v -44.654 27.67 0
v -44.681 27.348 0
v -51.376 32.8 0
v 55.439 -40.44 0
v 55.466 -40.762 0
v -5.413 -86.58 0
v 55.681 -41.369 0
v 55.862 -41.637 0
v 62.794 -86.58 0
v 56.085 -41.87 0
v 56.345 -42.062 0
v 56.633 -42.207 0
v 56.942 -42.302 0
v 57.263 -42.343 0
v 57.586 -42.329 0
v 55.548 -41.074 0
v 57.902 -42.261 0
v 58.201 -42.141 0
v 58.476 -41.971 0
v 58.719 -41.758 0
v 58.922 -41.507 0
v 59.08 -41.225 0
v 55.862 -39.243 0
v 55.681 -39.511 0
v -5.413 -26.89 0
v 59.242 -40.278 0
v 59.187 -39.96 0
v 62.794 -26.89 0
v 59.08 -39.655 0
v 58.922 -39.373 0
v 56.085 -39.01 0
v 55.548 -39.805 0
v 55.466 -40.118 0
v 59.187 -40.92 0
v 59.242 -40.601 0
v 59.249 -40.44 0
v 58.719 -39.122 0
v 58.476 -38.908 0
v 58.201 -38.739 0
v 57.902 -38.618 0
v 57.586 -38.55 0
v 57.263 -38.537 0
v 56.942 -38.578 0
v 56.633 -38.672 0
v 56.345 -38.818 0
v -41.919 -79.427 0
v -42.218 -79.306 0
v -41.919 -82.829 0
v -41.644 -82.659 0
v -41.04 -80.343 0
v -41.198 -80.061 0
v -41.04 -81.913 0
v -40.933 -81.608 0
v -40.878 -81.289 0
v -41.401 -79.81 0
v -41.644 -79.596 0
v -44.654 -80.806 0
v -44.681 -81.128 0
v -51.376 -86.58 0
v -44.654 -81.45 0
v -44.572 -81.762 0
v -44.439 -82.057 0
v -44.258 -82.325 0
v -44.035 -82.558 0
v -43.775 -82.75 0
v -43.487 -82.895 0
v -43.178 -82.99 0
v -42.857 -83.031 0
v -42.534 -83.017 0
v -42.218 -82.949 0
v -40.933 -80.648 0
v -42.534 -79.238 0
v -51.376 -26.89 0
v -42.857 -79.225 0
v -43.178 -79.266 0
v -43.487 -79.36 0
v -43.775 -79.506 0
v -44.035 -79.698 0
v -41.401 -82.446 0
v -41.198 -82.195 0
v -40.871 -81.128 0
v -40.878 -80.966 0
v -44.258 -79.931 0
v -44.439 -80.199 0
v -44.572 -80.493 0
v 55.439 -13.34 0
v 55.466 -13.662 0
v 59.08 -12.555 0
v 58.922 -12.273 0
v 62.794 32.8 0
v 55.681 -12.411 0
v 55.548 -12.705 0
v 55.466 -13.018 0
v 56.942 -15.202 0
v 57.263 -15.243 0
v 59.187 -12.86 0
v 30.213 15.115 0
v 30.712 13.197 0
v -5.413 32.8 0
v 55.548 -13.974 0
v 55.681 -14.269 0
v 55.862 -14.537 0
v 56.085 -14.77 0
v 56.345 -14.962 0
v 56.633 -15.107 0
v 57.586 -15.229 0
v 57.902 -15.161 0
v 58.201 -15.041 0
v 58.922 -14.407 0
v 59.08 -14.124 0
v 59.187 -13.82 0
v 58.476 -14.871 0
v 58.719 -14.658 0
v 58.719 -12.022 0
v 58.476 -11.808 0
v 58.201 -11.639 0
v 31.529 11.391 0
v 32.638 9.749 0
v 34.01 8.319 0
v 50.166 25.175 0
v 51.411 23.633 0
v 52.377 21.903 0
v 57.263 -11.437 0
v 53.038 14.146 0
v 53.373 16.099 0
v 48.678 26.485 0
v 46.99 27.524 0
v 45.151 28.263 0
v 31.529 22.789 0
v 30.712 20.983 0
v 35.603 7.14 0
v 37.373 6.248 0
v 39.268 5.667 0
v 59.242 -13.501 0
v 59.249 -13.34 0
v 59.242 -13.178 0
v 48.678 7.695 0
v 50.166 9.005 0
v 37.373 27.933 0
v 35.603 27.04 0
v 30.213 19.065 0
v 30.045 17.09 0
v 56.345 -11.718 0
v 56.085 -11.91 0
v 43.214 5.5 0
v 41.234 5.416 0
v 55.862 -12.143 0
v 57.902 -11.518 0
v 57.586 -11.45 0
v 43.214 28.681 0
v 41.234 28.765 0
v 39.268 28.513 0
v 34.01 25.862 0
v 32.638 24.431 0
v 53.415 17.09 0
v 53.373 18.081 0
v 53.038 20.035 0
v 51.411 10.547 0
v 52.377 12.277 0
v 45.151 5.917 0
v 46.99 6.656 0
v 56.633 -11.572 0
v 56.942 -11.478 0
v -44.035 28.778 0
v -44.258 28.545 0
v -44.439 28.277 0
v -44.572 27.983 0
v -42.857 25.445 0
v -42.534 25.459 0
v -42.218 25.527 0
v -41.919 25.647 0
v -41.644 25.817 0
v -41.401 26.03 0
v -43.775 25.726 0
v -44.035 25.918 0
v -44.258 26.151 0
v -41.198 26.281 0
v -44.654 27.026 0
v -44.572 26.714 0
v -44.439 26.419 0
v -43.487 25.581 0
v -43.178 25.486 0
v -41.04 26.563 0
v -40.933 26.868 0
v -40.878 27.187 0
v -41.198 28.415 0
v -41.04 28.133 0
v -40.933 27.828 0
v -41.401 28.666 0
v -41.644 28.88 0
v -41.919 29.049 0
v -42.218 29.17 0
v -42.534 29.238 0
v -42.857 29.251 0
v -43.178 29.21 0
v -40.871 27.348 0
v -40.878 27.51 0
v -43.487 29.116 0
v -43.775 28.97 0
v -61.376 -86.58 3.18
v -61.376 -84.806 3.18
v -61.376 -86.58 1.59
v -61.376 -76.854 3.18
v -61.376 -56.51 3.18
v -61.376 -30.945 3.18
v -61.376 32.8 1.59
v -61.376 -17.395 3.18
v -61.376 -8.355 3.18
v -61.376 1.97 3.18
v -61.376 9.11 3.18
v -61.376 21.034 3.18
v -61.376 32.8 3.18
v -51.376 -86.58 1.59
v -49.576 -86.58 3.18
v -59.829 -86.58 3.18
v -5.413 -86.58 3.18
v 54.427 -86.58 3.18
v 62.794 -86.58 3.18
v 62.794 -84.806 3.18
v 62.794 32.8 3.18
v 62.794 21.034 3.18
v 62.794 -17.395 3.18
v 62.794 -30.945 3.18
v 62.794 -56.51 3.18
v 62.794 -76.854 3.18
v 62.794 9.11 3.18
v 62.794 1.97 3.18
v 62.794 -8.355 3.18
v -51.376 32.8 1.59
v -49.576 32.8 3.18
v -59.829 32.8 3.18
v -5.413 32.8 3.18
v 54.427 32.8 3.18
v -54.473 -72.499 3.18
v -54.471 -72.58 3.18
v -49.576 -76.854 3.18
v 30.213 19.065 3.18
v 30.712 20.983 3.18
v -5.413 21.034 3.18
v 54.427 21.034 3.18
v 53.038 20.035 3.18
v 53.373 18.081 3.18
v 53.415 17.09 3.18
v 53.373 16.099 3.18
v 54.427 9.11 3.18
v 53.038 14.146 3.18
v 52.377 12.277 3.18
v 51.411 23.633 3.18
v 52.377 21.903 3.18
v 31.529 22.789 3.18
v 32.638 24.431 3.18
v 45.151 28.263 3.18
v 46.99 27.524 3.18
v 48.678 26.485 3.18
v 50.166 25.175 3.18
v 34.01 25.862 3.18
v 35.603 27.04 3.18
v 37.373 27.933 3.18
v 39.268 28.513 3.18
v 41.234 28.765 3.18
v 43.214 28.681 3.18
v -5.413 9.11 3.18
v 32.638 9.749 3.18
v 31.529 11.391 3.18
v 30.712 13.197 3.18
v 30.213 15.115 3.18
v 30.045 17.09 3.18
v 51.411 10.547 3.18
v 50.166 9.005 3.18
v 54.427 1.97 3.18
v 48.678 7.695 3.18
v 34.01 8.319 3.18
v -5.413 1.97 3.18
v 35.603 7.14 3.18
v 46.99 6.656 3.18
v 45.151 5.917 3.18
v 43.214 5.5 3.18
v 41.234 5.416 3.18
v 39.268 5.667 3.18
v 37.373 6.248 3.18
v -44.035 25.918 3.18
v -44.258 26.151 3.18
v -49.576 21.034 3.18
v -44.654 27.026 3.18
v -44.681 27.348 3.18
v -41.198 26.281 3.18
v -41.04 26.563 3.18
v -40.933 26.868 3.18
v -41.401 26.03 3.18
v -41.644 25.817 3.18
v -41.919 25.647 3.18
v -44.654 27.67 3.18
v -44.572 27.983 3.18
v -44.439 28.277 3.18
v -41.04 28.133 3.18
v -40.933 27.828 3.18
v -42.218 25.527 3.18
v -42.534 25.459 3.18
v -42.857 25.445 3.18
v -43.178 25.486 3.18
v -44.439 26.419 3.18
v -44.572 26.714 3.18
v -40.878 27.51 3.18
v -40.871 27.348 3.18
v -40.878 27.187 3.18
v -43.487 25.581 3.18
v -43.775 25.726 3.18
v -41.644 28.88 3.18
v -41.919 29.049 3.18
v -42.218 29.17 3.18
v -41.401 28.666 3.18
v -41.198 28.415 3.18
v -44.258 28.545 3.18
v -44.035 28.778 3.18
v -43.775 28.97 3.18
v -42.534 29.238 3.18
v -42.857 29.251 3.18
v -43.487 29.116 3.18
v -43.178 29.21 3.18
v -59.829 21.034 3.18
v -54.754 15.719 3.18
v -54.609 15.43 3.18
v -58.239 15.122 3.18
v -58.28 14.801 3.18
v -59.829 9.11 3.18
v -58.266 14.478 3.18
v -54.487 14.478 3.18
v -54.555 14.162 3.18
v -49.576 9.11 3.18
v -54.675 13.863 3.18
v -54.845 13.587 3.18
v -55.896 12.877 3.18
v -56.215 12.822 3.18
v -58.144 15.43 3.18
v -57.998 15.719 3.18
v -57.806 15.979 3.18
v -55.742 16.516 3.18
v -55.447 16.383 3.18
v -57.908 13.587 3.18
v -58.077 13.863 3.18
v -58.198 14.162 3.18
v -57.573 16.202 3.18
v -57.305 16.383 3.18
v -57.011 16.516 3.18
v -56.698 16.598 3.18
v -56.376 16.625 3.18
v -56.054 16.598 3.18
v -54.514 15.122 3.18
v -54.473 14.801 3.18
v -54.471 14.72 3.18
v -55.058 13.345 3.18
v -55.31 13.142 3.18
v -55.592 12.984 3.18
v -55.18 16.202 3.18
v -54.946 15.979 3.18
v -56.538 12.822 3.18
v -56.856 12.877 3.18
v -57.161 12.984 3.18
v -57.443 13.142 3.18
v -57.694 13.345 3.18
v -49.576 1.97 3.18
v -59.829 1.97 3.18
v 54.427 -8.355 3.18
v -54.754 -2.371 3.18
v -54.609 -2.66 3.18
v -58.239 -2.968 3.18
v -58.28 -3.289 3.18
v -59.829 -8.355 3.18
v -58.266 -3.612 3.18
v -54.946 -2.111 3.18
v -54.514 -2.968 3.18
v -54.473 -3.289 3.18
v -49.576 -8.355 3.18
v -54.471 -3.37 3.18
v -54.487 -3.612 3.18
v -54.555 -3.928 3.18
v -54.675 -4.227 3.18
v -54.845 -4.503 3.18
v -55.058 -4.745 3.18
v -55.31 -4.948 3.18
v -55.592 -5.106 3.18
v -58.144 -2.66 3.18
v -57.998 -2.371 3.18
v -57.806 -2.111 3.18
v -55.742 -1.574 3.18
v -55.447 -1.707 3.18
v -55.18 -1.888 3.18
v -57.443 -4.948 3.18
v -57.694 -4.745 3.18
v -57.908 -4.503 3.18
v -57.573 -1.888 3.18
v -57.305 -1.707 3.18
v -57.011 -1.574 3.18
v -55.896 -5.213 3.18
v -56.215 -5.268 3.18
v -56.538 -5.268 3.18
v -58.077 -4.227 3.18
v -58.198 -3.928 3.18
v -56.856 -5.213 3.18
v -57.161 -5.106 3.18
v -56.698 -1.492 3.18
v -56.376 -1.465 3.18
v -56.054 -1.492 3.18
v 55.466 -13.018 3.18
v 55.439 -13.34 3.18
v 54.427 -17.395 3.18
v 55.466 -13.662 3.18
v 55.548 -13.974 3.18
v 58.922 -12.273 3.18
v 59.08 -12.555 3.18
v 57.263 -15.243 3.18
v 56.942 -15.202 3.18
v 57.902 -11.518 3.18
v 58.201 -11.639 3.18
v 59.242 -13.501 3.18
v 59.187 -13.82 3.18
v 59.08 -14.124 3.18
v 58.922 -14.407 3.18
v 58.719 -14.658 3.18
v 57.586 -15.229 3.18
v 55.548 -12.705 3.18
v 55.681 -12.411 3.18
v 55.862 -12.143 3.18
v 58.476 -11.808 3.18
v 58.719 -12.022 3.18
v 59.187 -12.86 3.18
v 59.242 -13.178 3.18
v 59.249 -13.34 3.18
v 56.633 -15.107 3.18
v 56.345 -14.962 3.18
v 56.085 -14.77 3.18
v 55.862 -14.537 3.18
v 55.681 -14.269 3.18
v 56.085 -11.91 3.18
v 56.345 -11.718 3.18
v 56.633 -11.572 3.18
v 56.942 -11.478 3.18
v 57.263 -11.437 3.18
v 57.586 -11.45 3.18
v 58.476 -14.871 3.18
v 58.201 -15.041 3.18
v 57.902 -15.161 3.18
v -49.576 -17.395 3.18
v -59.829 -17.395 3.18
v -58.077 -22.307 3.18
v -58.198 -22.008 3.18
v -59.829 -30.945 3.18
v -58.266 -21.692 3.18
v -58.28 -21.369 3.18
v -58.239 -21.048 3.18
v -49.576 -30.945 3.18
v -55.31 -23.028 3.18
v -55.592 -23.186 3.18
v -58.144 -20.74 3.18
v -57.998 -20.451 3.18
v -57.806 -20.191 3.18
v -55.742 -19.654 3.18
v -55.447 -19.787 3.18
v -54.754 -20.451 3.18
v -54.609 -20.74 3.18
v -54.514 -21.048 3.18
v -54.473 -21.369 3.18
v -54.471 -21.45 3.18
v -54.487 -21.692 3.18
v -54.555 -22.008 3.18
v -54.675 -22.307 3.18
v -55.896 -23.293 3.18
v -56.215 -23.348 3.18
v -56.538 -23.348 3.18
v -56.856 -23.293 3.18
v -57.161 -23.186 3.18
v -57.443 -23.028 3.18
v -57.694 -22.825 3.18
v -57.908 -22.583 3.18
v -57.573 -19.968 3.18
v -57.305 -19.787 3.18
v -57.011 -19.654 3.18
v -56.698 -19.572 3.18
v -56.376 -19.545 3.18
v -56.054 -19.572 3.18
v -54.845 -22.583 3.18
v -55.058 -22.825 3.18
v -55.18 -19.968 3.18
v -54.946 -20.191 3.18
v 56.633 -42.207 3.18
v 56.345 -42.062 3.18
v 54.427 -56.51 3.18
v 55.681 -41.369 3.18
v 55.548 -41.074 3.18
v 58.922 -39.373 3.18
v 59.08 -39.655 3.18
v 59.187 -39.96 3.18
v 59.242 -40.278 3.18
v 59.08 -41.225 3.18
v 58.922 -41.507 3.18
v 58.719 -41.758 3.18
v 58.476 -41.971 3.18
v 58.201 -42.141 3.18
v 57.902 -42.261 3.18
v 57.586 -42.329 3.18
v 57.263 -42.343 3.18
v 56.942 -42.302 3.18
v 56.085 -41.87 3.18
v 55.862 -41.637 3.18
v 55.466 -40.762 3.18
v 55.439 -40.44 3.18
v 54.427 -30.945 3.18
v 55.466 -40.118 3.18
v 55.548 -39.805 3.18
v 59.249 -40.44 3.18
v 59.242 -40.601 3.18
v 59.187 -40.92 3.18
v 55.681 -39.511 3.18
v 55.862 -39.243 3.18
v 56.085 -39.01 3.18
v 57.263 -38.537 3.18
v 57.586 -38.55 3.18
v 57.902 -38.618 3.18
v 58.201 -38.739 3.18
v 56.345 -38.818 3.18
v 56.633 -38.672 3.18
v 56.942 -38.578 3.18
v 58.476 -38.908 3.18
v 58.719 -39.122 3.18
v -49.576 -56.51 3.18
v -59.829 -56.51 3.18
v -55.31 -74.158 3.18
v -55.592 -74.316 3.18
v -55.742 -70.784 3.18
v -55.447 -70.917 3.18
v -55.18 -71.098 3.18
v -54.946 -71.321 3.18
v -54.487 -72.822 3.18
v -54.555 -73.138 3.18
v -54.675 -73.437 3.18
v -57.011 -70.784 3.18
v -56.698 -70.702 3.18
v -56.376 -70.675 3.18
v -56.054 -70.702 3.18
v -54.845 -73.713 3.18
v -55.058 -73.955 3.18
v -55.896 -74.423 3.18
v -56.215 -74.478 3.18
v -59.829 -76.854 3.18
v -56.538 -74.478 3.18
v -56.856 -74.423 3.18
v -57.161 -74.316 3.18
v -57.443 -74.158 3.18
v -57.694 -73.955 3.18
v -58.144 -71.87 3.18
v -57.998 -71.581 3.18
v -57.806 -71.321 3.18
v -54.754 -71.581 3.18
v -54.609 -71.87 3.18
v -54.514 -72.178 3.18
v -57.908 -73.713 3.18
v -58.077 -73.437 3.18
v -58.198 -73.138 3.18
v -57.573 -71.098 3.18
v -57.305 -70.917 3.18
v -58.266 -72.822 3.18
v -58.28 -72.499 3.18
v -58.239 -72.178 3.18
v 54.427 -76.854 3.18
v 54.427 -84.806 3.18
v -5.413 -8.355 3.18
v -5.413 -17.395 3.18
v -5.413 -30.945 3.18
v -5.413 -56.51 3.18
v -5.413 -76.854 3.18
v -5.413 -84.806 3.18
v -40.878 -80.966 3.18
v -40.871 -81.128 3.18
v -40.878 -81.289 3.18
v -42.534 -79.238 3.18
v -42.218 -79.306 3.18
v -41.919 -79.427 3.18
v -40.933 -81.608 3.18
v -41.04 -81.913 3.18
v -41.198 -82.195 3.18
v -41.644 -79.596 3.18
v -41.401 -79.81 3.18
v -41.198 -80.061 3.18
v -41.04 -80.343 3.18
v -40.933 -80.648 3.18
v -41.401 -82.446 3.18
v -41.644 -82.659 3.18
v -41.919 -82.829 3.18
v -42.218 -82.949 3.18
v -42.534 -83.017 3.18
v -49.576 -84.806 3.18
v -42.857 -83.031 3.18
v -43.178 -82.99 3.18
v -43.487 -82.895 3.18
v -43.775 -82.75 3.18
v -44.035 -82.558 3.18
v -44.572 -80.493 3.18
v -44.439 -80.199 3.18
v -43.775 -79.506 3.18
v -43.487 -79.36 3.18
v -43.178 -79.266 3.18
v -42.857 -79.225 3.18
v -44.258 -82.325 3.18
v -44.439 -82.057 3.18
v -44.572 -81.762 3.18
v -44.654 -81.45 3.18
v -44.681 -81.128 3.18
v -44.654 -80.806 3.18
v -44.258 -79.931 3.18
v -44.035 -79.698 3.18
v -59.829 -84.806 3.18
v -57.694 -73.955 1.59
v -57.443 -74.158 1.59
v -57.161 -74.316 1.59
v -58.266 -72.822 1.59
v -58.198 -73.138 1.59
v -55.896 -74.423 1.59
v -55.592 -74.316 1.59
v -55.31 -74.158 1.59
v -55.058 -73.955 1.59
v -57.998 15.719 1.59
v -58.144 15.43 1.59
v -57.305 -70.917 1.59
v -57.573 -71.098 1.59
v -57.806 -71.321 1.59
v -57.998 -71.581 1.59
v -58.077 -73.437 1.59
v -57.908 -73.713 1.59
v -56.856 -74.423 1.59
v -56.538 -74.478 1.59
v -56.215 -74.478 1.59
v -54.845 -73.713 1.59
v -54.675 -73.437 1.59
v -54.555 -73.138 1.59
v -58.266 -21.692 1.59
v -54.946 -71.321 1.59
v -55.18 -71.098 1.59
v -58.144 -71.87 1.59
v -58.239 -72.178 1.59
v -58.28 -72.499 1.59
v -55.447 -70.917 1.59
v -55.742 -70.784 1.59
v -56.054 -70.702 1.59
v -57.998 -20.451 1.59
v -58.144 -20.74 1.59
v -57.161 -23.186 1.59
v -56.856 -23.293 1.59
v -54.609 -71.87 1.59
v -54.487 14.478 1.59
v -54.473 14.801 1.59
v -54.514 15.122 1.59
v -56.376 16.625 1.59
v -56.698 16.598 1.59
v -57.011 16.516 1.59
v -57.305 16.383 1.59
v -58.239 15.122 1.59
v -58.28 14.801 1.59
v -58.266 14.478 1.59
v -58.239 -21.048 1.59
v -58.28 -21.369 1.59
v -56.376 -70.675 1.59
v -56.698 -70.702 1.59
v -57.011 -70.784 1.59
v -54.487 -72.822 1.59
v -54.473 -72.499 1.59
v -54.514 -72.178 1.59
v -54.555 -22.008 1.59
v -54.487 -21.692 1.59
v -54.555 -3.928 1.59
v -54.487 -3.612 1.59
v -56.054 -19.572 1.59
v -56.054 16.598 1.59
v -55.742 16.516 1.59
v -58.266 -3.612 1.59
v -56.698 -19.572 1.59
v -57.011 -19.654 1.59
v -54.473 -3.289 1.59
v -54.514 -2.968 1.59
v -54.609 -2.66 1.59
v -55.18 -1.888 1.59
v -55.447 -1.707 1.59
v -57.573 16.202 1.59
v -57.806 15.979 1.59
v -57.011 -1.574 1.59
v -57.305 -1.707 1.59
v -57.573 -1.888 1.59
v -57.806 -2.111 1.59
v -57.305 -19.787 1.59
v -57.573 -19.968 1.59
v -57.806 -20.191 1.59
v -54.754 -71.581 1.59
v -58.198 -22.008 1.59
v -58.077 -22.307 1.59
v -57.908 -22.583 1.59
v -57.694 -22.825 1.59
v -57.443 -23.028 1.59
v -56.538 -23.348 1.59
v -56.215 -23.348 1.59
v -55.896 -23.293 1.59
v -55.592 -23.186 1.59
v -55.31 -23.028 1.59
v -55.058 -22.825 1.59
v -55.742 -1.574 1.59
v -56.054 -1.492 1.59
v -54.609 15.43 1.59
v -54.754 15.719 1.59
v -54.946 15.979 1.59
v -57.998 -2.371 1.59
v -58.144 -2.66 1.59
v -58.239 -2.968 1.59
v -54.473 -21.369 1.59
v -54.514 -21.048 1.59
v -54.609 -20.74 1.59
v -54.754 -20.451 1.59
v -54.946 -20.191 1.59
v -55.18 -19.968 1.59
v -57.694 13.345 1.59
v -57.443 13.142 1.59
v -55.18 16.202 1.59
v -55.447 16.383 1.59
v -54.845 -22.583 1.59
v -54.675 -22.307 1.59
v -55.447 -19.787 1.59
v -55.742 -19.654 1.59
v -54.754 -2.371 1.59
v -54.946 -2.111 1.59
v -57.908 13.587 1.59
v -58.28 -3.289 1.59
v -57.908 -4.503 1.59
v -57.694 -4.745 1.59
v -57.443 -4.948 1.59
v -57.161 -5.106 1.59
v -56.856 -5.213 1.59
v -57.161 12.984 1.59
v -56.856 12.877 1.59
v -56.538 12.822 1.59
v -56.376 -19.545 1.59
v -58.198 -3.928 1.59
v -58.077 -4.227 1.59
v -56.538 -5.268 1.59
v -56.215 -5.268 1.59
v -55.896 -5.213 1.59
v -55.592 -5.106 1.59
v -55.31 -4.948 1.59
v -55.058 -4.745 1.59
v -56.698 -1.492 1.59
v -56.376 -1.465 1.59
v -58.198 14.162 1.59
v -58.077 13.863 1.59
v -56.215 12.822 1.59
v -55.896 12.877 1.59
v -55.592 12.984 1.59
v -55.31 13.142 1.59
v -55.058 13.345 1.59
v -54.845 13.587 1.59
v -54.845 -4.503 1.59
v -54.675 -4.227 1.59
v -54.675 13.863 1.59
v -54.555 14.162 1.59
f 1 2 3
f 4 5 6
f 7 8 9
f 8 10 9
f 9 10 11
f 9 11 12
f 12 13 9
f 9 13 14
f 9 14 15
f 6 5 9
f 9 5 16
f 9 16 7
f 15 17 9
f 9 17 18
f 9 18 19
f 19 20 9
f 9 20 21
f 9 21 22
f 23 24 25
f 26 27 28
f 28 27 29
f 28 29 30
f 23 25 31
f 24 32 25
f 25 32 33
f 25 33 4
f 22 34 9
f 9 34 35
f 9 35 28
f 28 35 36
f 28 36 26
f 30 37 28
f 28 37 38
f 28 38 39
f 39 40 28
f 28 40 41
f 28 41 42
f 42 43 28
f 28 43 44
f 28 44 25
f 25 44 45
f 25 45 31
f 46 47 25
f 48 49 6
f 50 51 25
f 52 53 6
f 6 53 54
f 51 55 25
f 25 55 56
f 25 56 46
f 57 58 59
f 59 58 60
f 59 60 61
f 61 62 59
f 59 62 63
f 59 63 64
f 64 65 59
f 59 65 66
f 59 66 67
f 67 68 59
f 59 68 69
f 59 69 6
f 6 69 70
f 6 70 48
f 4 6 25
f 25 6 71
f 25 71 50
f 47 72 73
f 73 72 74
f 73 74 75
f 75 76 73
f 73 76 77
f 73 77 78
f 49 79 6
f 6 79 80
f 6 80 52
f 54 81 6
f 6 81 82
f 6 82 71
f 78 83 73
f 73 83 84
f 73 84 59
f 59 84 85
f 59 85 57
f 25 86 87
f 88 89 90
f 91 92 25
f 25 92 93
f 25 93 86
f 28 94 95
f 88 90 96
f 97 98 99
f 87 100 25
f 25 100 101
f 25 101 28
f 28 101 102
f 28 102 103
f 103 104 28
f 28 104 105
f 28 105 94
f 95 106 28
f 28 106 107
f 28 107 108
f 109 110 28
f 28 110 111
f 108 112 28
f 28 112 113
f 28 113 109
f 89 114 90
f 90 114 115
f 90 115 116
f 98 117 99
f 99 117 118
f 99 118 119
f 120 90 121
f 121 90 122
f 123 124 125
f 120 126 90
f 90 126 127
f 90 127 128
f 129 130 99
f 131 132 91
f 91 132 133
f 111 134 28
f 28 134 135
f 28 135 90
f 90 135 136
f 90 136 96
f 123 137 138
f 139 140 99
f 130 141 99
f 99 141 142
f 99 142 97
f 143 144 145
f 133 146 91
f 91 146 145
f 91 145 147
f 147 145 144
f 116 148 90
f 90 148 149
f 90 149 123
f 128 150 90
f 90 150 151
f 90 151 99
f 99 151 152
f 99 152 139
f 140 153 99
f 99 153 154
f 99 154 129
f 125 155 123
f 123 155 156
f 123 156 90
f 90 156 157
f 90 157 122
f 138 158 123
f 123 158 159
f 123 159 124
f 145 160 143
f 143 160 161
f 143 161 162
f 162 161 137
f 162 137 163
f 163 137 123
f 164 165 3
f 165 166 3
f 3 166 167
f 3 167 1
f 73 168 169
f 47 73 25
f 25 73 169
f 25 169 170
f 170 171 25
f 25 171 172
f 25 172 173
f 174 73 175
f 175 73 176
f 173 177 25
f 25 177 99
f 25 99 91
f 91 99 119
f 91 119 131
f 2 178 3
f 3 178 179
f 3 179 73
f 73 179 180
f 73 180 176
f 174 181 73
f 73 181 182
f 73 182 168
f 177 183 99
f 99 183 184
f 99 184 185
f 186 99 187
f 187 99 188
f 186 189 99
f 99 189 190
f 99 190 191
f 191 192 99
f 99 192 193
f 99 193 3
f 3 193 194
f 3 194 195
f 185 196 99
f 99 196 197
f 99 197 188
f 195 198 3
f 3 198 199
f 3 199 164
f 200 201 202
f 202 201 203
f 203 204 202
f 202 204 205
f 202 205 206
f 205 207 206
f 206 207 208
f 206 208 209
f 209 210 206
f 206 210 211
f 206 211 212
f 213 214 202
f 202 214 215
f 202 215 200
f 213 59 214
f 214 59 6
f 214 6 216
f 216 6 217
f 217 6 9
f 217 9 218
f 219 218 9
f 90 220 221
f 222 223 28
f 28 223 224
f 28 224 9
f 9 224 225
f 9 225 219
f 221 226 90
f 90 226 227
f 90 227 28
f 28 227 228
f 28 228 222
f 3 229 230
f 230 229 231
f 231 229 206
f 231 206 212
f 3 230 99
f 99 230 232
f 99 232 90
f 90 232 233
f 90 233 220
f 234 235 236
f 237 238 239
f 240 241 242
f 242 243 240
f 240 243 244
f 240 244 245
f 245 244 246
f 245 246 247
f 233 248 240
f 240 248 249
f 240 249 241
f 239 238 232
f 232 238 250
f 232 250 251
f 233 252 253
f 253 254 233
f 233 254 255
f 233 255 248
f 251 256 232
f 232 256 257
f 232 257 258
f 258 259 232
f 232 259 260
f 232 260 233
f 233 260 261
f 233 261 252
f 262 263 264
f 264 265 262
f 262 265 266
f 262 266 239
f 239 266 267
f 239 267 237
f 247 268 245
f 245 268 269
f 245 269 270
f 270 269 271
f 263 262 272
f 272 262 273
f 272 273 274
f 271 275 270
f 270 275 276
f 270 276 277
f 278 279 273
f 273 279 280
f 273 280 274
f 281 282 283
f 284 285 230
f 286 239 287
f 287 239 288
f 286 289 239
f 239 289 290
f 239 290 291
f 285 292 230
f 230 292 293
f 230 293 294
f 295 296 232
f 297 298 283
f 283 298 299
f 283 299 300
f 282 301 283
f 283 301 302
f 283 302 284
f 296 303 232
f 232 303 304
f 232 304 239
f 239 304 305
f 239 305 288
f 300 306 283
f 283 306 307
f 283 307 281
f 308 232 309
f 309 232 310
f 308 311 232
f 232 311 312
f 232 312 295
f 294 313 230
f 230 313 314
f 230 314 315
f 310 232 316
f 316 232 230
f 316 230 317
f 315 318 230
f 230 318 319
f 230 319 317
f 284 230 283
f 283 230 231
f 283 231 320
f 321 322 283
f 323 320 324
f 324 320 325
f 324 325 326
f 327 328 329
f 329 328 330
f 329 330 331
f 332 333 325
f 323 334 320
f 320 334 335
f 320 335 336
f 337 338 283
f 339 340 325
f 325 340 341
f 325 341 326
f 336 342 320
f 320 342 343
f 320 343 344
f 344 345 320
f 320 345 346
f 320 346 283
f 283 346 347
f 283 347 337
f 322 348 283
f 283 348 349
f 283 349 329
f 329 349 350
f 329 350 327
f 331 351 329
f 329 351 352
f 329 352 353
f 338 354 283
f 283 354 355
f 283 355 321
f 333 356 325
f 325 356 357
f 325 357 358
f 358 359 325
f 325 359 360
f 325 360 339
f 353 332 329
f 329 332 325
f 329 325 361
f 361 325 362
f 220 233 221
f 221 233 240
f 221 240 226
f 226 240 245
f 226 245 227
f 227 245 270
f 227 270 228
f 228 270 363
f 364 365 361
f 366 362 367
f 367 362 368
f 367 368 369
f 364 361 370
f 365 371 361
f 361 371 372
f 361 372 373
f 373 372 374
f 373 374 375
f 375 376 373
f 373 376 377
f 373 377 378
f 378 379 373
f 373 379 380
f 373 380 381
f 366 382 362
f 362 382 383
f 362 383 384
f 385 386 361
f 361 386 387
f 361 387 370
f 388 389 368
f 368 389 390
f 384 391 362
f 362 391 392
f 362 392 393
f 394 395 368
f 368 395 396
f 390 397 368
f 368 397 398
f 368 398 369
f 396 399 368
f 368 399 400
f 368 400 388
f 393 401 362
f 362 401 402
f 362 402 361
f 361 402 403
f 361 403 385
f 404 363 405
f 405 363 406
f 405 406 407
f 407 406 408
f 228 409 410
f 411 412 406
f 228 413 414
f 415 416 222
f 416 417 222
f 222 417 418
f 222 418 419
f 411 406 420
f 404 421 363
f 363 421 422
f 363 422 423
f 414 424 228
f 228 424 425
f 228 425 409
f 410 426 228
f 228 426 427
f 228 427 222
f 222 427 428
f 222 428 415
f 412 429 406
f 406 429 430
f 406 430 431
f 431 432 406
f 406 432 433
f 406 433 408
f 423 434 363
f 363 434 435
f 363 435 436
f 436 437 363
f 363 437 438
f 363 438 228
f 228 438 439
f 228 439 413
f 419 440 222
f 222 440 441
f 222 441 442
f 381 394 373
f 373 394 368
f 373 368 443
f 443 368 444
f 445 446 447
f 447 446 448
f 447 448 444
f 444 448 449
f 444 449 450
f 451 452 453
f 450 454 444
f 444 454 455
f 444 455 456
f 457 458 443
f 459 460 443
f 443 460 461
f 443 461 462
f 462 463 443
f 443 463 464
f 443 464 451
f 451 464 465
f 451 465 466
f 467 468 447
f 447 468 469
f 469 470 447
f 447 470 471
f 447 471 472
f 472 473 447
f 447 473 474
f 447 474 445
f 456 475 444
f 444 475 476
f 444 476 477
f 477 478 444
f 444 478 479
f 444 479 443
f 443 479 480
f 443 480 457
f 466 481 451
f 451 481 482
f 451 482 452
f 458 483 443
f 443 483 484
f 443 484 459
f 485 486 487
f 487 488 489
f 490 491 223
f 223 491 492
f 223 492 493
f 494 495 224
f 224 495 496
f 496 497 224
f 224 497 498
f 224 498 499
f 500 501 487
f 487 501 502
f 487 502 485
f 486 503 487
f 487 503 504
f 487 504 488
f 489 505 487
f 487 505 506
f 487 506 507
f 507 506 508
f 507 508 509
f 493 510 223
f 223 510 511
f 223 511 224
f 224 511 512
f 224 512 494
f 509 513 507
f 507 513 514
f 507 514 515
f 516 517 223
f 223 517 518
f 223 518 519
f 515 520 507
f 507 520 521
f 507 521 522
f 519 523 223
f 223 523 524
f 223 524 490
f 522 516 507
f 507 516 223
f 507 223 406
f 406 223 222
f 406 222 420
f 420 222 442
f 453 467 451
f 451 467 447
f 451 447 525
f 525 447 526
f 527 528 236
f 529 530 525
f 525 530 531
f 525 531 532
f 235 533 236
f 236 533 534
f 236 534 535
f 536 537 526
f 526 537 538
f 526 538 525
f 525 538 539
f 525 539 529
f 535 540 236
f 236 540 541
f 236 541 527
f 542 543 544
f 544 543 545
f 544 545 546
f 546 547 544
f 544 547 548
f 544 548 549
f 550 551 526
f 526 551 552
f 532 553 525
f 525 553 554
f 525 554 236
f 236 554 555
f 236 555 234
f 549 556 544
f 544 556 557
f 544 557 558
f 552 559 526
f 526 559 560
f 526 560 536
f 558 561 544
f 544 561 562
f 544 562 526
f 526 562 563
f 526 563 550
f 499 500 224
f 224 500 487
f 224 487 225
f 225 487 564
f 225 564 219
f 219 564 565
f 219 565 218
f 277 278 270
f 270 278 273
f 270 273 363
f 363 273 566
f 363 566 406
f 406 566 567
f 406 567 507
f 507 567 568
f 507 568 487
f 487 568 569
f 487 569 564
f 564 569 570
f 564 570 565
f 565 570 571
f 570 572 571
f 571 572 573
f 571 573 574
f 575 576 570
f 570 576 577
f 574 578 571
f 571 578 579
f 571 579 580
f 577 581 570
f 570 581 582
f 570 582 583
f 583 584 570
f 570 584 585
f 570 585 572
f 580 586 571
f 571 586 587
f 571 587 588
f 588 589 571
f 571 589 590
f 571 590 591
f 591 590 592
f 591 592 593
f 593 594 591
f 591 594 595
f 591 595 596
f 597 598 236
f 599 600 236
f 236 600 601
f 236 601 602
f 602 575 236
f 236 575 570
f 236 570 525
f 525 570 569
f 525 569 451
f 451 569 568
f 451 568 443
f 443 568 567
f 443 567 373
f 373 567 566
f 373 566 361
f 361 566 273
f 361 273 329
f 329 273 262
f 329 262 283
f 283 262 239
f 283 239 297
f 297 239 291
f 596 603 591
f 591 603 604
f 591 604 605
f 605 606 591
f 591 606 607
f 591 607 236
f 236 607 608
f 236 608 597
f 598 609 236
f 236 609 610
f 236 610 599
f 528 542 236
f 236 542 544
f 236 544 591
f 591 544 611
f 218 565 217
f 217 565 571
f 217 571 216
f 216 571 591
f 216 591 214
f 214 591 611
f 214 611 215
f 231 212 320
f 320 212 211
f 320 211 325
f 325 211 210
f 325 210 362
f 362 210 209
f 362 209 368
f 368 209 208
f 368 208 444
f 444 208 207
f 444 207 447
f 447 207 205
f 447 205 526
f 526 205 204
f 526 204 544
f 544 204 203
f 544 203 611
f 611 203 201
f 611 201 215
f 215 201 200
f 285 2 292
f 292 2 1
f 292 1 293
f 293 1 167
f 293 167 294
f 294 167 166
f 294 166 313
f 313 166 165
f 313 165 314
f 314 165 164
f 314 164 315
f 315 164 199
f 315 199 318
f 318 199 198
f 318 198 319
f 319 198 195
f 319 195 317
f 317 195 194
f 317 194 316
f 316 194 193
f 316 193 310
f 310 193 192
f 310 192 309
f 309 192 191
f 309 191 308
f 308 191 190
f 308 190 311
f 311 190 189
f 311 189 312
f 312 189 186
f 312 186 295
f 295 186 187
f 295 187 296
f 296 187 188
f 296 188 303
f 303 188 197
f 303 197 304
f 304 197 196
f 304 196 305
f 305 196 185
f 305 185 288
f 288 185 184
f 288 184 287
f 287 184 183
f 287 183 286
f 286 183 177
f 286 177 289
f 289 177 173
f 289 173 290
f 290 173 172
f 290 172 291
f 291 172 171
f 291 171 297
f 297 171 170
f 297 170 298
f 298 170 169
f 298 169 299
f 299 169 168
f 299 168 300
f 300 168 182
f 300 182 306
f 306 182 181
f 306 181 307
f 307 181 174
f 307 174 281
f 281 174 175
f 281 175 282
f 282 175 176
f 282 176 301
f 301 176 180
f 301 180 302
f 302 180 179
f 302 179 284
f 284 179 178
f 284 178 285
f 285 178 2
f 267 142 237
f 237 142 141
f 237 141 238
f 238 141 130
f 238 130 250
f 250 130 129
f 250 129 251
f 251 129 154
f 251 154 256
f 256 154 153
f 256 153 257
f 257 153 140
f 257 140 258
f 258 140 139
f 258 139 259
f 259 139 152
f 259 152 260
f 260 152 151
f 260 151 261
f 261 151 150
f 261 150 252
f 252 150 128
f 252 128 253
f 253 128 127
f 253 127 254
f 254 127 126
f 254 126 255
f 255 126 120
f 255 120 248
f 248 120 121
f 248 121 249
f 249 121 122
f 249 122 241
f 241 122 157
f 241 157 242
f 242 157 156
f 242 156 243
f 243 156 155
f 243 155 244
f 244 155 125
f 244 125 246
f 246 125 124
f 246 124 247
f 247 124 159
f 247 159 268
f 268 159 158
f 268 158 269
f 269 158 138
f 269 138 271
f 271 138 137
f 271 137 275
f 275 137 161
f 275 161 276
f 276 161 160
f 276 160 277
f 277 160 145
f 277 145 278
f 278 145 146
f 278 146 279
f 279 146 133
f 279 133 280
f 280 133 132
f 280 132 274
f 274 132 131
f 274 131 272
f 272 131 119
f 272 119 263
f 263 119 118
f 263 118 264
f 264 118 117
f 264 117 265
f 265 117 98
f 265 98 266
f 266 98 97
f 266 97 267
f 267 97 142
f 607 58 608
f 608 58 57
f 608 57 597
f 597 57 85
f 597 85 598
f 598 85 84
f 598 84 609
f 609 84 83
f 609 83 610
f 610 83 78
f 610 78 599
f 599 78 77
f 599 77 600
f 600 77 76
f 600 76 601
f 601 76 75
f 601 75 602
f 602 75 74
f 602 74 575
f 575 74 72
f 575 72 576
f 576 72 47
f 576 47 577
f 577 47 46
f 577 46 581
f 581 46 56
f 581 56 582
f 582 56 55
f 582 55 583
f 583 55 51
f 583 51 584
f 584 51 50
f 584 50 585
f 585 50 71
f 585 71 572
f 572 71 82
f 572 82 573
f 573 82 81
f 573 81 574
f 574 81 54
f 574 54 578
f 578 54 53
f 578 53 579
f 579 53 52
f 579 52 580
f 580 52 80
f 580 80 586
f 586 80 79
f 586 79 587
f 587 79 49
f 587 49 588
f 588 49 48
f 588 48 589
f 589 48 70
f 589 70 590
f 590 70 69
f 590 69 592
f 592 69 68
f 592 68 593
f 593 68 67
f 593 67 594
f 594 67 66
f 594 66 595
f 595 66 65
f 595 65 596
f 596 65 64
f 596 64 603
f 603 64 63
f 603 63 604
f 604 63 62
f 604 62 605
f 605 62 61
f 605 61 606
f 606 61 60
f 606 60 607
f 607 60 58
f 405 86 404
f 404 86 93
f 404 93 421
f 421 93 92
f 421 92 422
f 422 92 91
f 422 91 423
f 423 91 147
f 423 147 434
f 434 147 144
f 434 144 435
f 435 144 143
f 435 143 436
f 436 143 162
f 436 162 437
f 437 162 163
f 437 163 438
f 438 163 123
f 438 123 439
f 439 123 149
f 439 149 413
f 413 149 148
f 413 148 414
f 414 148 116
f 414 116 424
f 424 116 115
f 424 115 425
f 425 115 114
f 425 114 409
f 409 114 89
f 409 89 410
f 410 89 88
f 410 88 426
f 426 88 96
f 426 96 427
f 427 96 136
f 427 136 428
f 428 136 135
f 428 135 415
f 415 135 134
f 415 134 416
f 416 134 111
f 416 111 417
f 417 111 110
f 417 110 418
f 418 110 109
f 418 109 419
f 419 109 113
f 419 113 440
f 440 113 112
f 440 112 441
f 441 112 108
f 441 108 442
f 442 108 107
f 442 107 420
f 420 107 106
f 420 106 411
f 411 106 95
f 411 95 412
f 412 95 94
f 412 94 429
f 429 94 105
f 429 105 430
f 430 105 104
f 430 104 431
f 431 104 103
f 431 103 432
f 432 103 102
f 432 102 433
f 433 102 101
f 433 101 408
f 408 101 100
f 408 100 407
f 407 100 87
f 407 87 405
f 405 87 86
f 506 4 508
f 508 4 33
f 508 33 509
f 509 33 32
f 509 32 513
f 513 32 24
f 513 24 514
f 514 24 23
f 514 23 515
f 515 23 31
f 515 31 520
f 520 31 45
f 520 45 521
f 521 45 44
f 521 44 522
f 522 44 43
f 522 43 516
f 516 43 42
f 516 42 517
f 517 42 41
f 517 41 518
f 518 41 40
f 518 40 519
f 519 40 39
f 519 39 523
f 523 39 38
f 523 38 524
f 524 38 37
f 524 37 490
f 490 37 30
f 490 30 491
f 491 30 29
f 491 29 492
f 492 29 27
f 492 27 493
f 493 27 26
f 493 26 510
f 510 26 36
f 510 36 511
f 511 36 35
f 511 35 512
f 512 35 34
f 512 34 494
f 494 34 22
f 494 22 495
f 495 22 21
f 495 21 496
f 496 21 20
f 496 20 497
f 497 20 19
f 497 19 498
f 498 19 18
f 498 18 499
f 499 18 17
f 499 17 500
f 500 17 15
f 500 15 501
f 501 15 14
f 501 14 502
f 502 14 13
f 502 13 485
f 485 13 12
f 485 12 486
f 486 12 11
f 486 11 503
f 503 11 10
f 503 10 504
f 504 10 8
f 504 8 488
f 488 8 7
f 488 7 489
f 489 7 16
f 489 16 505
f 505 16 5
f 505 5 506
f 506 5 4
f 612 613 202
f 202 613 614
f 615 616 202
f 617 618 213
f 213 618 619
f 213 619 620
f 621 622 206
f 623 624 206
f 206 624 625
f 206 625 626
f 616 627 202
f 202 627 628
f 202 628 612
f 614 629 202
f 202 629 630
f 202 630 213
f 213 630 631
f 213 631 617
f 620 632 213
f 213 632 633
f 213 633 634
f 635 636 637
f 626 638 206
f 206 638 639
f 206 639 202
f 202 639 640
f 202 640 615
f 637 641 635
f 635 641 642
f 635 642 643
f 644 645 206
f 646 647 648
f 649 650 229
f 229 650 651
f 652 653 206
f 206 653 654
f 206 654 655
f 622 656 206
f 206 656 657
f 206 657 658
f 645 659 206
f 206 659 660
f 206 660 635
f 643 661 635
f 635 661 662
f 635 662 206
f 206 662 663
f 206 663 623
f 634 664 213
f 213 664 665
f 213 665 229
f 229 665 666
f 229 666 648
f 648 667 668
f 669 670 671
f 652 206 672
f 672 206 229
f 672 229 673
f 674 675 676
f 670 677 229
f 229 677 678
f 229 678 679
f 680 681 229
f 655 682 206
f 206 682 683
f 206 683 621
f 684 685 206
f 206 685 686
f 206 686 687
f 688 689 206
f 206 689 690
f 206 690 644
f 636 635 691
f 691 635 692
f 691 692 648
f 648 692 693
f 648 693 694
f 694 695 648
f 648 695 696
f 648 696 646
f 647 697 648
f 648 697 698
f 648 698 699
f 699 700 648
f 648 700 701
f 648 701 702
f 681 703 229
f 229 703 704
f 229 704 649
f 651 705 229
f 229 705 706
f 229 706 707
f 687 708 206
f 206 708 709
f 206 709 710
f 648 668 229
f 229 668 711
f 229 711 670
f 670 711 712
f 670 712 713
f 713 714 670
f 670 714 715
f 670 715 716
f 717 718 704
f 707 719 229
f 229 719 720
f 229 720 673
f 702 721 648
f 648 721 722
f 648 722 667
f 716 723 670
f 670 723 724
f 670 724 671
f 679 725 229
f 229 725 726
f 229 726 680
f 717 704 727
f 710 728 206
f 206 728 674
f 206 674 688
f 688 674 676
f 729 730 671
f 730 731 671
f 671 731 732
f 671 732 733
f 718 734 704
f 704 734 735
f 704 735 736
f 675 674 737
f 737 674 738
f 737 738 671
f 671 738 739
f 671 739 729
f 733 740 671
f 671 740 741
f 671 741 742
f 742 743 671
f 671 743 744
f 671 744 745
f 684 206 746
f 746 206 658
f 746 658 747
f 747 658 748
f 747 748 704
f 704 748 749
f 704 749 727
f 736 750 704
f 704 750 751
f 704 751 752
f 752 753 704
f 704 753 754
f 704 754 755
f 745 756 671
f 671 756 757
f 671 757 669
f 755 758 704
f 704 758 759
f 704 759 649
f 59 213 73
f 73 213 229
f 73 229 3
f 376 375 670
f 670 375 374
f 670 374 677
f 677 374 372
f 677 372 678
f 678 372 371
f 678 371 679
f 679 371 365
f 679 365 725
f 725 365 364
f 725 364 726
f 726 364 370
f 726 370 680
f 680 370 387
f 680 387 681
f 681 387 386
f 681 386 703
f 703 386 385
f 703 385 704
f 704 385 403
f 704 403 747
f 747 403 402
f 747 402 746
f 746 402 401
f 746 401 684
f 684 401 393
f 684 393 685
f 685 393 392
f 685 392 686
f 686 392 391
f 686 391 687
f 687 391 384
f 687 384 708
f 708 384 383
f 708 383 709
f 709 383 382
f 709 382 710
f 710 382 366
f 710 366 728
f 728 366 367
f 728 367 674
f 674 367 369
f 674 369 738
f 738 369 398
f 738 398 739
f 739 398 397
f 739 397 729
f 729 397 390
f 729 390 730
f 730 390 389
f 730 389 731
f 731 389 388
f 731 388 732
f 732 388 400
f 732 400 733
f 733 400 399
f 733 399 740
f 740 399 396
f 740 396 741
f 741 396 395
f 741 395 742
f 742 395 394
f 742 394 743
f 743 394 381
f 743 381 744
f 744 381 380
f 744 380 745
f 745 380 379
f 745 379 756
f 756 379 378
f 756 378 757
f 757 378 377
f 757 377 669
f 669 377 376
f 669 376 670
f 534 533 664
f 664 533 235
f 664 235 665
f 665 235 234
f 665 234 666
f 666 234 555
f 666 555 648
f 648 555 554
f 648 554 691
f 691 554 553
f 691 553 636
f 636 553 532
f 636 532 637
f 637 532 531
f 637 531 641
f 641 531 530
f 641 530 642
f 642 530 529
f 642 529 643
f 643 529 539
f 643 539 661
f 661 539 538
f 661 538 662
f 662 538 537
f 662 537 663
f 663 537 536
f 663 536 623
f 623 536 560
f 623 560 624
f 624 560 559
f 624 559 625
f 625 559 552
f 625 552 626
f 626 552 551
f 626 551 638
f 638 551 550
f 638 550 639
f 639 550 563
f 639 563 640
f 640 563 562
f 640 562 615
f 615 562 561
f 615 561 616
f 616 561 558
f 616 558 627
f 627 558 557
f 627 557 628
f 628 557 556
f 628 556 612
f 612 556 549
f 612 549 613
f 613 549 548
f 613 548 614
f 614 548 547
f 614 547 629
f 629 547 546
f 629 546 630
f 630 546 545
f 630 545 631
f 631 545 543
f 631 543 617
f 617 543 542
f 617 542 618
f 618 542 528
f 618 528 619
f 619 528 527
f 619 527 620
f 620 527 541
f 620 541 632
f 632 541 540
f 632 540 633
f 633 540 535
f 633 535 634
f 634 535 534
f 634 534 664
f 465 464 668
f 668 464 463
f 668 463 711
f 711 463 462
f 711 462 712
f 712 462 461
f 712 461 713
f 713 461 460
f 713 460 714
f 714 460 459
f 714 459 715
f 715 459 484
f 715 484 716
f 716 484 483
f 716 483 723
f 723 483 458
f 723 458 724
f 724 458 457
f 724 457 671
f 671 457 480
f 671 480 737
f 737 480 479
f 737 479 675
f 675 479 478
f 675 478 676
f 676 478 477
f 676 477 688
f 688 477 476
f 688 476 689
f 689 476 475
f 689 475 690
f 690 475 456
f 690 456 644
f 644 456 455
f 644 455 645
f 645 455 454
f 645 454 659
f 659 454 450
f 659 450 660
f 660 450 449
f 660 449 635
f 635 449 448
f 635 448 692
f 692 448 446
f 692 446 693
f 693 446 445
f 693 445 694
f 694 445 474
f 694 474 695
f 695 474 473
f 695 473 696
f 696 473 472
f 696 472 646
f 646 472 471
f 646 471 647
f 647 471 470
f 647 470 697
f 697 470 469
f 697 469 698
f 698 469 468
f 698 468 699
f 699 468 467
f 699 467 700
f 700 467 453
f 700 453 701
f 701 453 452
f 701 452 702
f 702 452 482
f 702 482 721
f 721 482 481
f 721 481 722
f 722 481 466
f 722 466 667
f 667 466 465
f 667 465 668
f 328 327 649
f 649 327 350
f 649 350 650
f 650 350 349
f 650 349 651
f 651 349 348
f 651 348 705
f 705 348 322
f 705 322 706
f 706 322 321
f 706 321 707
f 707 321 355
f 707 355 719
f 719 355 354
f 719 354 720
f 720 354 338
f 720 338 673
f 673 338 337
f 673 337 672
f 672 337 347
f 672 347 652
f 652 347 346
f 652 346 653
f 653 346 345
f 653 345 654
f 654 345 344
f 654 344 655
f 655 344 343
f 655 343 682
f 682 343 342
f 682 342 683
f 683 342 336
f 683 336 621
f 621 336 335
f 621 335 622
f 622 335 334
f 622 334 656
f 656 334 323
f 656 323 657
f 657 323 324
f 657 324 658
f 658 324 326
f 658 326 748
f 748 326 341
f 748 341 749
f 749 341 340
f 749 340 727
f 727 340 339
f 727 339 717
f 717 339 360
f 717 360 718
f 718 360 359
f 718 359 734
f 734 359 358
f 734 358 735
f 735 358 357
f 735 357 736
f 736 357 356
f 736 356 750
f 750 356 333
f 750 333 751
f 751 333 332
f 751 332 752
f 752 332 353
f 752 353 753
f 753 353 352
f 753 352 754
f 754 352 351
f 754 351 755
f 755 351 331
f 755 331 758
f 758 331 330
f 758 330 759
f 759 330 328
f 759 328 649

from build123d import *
from OCP.BRepAlgoAPI import BRepAlgoAPI_Cut
from OCP.TopTools import TopTools_ListOfShape

# Parameters (mm, degrees)
SKETCH2_W           = 124.17
SKETCH2_H           = 119.38
BOSS_EXTRUDE1_DEPTH = 3.18
SKETCH3_R           = 1.905
SKETCH3_R_2         = 11.685
CUT_EXTRUDE1_DEPTH  = 23.18
SKETCH5_W           = 1.59
SKETCH5_H           = 120
CUT_EXTRUDE2_DEPTH  = 10
SKETCH6_R           = 1.905
CUT_EXTRUDE3_DEPTH  = 5


with BuildPart() as part:
    # Sketch2 → Boss-Extrude1 (new body)
    with BuildSketch(Plane(origin=(0, -1.061487407, 0), x_dir=(1, 0, 0), z_dir=(0, 0, 1))):
        with Locations((0.708693295, -25.828343308)):
            Rectangle(SKETCH2_W, SKETCH2_H)
    extrude(amount=BOSS_EXTRUDE1_DEPTH)

    # Sketch3 → Cut-Extrude1 (cut)
    with BuildSketch(Plane.XY):
        with Locations((-42.776306705, 27.348169285)):
            Circle(SKETCH3_R)
        with Locations((41.729693295, 17.090169285)):
            Circle(SKETCH3_R_2)
        with Locations((-42.776306705, -81.127830715)):
            Circle(SKETCH3_R)
        with Locations((57.343693295, -13.339830715)):
            Circle(SKETCH3_R)
        with Locations((57.343693295, -40.439830715)):
            Circle(SKETCH3_R)
    extrude(amount=CUT_EXTRUDE1_DEPTH, mode=Mode.SUBTRACT)


with BuildPart() as cut_extrude2_tool:
    # Sketch5 → Cut-Extrude2 (new body)
    with BuildSketch(Plane.ZY.offset(61.376306705)):
        with Locations((0.794999799, -27.199831736)):
            Rectangle(SKETCH5_W, SKETCH5_H)
    extrude(amount=-CUT_EXTRUDE2_DEPTH)


with BuildPart() as part_1:
    add(part.part)

    # Cut-Extrude2: cut by cut_extrude2_tool, with a tolerance
    cut_extrude2_stock = TopTools_ListOfShape()
    cut_extrude2_stock.Append(part_1.part.wrapped)
    cut_extrude2_tools = TopTools_ListOfShape()
    cut_extrude2_tools.Append(cut_extrude2_tool.part.wrapped)
    cut_extrude2_cut = BRepAlgoAPI_Cut()
    cut_extrude2_cut.SetArguments(cut_extrude2_stock)
    cut_extrude2_cut.SetTools(cut_extrude2_tools)
    cut_extrude2_cut.SetFuzzyValue(0.00001)
    cut_extrude2_cut.Build()
    add(Compound.cast(cut_extrude2_cut.Shape()).solids(), mode=Mode.REPLACE)

    # Sketch6 → Cut-Extrude3 (cut)
    with BuildSketch(Plane(origin=(0, 0, 1.589999799), x_dir=(-1, 0, 0), z_dir=(0, 0, -1))):
        with Locations((56.376306705, 14.720168264)):
            Circle(SKETCH6_R)
        with Locations((56.376306705, -21.449831736)):
            Circle(SKETCH6_R)
        with Locations((56.376306705, -72.579830715)):
            Circle(SKETCH6_R)
        with Locations((56.376306705, -3.369831736)):
            Circle(SKETCH6_R)
    extrude(amount=-CUT_EXTRUDE3_DEPTH, mode=Mode.SUBTRACT)


solid = part_1.part
